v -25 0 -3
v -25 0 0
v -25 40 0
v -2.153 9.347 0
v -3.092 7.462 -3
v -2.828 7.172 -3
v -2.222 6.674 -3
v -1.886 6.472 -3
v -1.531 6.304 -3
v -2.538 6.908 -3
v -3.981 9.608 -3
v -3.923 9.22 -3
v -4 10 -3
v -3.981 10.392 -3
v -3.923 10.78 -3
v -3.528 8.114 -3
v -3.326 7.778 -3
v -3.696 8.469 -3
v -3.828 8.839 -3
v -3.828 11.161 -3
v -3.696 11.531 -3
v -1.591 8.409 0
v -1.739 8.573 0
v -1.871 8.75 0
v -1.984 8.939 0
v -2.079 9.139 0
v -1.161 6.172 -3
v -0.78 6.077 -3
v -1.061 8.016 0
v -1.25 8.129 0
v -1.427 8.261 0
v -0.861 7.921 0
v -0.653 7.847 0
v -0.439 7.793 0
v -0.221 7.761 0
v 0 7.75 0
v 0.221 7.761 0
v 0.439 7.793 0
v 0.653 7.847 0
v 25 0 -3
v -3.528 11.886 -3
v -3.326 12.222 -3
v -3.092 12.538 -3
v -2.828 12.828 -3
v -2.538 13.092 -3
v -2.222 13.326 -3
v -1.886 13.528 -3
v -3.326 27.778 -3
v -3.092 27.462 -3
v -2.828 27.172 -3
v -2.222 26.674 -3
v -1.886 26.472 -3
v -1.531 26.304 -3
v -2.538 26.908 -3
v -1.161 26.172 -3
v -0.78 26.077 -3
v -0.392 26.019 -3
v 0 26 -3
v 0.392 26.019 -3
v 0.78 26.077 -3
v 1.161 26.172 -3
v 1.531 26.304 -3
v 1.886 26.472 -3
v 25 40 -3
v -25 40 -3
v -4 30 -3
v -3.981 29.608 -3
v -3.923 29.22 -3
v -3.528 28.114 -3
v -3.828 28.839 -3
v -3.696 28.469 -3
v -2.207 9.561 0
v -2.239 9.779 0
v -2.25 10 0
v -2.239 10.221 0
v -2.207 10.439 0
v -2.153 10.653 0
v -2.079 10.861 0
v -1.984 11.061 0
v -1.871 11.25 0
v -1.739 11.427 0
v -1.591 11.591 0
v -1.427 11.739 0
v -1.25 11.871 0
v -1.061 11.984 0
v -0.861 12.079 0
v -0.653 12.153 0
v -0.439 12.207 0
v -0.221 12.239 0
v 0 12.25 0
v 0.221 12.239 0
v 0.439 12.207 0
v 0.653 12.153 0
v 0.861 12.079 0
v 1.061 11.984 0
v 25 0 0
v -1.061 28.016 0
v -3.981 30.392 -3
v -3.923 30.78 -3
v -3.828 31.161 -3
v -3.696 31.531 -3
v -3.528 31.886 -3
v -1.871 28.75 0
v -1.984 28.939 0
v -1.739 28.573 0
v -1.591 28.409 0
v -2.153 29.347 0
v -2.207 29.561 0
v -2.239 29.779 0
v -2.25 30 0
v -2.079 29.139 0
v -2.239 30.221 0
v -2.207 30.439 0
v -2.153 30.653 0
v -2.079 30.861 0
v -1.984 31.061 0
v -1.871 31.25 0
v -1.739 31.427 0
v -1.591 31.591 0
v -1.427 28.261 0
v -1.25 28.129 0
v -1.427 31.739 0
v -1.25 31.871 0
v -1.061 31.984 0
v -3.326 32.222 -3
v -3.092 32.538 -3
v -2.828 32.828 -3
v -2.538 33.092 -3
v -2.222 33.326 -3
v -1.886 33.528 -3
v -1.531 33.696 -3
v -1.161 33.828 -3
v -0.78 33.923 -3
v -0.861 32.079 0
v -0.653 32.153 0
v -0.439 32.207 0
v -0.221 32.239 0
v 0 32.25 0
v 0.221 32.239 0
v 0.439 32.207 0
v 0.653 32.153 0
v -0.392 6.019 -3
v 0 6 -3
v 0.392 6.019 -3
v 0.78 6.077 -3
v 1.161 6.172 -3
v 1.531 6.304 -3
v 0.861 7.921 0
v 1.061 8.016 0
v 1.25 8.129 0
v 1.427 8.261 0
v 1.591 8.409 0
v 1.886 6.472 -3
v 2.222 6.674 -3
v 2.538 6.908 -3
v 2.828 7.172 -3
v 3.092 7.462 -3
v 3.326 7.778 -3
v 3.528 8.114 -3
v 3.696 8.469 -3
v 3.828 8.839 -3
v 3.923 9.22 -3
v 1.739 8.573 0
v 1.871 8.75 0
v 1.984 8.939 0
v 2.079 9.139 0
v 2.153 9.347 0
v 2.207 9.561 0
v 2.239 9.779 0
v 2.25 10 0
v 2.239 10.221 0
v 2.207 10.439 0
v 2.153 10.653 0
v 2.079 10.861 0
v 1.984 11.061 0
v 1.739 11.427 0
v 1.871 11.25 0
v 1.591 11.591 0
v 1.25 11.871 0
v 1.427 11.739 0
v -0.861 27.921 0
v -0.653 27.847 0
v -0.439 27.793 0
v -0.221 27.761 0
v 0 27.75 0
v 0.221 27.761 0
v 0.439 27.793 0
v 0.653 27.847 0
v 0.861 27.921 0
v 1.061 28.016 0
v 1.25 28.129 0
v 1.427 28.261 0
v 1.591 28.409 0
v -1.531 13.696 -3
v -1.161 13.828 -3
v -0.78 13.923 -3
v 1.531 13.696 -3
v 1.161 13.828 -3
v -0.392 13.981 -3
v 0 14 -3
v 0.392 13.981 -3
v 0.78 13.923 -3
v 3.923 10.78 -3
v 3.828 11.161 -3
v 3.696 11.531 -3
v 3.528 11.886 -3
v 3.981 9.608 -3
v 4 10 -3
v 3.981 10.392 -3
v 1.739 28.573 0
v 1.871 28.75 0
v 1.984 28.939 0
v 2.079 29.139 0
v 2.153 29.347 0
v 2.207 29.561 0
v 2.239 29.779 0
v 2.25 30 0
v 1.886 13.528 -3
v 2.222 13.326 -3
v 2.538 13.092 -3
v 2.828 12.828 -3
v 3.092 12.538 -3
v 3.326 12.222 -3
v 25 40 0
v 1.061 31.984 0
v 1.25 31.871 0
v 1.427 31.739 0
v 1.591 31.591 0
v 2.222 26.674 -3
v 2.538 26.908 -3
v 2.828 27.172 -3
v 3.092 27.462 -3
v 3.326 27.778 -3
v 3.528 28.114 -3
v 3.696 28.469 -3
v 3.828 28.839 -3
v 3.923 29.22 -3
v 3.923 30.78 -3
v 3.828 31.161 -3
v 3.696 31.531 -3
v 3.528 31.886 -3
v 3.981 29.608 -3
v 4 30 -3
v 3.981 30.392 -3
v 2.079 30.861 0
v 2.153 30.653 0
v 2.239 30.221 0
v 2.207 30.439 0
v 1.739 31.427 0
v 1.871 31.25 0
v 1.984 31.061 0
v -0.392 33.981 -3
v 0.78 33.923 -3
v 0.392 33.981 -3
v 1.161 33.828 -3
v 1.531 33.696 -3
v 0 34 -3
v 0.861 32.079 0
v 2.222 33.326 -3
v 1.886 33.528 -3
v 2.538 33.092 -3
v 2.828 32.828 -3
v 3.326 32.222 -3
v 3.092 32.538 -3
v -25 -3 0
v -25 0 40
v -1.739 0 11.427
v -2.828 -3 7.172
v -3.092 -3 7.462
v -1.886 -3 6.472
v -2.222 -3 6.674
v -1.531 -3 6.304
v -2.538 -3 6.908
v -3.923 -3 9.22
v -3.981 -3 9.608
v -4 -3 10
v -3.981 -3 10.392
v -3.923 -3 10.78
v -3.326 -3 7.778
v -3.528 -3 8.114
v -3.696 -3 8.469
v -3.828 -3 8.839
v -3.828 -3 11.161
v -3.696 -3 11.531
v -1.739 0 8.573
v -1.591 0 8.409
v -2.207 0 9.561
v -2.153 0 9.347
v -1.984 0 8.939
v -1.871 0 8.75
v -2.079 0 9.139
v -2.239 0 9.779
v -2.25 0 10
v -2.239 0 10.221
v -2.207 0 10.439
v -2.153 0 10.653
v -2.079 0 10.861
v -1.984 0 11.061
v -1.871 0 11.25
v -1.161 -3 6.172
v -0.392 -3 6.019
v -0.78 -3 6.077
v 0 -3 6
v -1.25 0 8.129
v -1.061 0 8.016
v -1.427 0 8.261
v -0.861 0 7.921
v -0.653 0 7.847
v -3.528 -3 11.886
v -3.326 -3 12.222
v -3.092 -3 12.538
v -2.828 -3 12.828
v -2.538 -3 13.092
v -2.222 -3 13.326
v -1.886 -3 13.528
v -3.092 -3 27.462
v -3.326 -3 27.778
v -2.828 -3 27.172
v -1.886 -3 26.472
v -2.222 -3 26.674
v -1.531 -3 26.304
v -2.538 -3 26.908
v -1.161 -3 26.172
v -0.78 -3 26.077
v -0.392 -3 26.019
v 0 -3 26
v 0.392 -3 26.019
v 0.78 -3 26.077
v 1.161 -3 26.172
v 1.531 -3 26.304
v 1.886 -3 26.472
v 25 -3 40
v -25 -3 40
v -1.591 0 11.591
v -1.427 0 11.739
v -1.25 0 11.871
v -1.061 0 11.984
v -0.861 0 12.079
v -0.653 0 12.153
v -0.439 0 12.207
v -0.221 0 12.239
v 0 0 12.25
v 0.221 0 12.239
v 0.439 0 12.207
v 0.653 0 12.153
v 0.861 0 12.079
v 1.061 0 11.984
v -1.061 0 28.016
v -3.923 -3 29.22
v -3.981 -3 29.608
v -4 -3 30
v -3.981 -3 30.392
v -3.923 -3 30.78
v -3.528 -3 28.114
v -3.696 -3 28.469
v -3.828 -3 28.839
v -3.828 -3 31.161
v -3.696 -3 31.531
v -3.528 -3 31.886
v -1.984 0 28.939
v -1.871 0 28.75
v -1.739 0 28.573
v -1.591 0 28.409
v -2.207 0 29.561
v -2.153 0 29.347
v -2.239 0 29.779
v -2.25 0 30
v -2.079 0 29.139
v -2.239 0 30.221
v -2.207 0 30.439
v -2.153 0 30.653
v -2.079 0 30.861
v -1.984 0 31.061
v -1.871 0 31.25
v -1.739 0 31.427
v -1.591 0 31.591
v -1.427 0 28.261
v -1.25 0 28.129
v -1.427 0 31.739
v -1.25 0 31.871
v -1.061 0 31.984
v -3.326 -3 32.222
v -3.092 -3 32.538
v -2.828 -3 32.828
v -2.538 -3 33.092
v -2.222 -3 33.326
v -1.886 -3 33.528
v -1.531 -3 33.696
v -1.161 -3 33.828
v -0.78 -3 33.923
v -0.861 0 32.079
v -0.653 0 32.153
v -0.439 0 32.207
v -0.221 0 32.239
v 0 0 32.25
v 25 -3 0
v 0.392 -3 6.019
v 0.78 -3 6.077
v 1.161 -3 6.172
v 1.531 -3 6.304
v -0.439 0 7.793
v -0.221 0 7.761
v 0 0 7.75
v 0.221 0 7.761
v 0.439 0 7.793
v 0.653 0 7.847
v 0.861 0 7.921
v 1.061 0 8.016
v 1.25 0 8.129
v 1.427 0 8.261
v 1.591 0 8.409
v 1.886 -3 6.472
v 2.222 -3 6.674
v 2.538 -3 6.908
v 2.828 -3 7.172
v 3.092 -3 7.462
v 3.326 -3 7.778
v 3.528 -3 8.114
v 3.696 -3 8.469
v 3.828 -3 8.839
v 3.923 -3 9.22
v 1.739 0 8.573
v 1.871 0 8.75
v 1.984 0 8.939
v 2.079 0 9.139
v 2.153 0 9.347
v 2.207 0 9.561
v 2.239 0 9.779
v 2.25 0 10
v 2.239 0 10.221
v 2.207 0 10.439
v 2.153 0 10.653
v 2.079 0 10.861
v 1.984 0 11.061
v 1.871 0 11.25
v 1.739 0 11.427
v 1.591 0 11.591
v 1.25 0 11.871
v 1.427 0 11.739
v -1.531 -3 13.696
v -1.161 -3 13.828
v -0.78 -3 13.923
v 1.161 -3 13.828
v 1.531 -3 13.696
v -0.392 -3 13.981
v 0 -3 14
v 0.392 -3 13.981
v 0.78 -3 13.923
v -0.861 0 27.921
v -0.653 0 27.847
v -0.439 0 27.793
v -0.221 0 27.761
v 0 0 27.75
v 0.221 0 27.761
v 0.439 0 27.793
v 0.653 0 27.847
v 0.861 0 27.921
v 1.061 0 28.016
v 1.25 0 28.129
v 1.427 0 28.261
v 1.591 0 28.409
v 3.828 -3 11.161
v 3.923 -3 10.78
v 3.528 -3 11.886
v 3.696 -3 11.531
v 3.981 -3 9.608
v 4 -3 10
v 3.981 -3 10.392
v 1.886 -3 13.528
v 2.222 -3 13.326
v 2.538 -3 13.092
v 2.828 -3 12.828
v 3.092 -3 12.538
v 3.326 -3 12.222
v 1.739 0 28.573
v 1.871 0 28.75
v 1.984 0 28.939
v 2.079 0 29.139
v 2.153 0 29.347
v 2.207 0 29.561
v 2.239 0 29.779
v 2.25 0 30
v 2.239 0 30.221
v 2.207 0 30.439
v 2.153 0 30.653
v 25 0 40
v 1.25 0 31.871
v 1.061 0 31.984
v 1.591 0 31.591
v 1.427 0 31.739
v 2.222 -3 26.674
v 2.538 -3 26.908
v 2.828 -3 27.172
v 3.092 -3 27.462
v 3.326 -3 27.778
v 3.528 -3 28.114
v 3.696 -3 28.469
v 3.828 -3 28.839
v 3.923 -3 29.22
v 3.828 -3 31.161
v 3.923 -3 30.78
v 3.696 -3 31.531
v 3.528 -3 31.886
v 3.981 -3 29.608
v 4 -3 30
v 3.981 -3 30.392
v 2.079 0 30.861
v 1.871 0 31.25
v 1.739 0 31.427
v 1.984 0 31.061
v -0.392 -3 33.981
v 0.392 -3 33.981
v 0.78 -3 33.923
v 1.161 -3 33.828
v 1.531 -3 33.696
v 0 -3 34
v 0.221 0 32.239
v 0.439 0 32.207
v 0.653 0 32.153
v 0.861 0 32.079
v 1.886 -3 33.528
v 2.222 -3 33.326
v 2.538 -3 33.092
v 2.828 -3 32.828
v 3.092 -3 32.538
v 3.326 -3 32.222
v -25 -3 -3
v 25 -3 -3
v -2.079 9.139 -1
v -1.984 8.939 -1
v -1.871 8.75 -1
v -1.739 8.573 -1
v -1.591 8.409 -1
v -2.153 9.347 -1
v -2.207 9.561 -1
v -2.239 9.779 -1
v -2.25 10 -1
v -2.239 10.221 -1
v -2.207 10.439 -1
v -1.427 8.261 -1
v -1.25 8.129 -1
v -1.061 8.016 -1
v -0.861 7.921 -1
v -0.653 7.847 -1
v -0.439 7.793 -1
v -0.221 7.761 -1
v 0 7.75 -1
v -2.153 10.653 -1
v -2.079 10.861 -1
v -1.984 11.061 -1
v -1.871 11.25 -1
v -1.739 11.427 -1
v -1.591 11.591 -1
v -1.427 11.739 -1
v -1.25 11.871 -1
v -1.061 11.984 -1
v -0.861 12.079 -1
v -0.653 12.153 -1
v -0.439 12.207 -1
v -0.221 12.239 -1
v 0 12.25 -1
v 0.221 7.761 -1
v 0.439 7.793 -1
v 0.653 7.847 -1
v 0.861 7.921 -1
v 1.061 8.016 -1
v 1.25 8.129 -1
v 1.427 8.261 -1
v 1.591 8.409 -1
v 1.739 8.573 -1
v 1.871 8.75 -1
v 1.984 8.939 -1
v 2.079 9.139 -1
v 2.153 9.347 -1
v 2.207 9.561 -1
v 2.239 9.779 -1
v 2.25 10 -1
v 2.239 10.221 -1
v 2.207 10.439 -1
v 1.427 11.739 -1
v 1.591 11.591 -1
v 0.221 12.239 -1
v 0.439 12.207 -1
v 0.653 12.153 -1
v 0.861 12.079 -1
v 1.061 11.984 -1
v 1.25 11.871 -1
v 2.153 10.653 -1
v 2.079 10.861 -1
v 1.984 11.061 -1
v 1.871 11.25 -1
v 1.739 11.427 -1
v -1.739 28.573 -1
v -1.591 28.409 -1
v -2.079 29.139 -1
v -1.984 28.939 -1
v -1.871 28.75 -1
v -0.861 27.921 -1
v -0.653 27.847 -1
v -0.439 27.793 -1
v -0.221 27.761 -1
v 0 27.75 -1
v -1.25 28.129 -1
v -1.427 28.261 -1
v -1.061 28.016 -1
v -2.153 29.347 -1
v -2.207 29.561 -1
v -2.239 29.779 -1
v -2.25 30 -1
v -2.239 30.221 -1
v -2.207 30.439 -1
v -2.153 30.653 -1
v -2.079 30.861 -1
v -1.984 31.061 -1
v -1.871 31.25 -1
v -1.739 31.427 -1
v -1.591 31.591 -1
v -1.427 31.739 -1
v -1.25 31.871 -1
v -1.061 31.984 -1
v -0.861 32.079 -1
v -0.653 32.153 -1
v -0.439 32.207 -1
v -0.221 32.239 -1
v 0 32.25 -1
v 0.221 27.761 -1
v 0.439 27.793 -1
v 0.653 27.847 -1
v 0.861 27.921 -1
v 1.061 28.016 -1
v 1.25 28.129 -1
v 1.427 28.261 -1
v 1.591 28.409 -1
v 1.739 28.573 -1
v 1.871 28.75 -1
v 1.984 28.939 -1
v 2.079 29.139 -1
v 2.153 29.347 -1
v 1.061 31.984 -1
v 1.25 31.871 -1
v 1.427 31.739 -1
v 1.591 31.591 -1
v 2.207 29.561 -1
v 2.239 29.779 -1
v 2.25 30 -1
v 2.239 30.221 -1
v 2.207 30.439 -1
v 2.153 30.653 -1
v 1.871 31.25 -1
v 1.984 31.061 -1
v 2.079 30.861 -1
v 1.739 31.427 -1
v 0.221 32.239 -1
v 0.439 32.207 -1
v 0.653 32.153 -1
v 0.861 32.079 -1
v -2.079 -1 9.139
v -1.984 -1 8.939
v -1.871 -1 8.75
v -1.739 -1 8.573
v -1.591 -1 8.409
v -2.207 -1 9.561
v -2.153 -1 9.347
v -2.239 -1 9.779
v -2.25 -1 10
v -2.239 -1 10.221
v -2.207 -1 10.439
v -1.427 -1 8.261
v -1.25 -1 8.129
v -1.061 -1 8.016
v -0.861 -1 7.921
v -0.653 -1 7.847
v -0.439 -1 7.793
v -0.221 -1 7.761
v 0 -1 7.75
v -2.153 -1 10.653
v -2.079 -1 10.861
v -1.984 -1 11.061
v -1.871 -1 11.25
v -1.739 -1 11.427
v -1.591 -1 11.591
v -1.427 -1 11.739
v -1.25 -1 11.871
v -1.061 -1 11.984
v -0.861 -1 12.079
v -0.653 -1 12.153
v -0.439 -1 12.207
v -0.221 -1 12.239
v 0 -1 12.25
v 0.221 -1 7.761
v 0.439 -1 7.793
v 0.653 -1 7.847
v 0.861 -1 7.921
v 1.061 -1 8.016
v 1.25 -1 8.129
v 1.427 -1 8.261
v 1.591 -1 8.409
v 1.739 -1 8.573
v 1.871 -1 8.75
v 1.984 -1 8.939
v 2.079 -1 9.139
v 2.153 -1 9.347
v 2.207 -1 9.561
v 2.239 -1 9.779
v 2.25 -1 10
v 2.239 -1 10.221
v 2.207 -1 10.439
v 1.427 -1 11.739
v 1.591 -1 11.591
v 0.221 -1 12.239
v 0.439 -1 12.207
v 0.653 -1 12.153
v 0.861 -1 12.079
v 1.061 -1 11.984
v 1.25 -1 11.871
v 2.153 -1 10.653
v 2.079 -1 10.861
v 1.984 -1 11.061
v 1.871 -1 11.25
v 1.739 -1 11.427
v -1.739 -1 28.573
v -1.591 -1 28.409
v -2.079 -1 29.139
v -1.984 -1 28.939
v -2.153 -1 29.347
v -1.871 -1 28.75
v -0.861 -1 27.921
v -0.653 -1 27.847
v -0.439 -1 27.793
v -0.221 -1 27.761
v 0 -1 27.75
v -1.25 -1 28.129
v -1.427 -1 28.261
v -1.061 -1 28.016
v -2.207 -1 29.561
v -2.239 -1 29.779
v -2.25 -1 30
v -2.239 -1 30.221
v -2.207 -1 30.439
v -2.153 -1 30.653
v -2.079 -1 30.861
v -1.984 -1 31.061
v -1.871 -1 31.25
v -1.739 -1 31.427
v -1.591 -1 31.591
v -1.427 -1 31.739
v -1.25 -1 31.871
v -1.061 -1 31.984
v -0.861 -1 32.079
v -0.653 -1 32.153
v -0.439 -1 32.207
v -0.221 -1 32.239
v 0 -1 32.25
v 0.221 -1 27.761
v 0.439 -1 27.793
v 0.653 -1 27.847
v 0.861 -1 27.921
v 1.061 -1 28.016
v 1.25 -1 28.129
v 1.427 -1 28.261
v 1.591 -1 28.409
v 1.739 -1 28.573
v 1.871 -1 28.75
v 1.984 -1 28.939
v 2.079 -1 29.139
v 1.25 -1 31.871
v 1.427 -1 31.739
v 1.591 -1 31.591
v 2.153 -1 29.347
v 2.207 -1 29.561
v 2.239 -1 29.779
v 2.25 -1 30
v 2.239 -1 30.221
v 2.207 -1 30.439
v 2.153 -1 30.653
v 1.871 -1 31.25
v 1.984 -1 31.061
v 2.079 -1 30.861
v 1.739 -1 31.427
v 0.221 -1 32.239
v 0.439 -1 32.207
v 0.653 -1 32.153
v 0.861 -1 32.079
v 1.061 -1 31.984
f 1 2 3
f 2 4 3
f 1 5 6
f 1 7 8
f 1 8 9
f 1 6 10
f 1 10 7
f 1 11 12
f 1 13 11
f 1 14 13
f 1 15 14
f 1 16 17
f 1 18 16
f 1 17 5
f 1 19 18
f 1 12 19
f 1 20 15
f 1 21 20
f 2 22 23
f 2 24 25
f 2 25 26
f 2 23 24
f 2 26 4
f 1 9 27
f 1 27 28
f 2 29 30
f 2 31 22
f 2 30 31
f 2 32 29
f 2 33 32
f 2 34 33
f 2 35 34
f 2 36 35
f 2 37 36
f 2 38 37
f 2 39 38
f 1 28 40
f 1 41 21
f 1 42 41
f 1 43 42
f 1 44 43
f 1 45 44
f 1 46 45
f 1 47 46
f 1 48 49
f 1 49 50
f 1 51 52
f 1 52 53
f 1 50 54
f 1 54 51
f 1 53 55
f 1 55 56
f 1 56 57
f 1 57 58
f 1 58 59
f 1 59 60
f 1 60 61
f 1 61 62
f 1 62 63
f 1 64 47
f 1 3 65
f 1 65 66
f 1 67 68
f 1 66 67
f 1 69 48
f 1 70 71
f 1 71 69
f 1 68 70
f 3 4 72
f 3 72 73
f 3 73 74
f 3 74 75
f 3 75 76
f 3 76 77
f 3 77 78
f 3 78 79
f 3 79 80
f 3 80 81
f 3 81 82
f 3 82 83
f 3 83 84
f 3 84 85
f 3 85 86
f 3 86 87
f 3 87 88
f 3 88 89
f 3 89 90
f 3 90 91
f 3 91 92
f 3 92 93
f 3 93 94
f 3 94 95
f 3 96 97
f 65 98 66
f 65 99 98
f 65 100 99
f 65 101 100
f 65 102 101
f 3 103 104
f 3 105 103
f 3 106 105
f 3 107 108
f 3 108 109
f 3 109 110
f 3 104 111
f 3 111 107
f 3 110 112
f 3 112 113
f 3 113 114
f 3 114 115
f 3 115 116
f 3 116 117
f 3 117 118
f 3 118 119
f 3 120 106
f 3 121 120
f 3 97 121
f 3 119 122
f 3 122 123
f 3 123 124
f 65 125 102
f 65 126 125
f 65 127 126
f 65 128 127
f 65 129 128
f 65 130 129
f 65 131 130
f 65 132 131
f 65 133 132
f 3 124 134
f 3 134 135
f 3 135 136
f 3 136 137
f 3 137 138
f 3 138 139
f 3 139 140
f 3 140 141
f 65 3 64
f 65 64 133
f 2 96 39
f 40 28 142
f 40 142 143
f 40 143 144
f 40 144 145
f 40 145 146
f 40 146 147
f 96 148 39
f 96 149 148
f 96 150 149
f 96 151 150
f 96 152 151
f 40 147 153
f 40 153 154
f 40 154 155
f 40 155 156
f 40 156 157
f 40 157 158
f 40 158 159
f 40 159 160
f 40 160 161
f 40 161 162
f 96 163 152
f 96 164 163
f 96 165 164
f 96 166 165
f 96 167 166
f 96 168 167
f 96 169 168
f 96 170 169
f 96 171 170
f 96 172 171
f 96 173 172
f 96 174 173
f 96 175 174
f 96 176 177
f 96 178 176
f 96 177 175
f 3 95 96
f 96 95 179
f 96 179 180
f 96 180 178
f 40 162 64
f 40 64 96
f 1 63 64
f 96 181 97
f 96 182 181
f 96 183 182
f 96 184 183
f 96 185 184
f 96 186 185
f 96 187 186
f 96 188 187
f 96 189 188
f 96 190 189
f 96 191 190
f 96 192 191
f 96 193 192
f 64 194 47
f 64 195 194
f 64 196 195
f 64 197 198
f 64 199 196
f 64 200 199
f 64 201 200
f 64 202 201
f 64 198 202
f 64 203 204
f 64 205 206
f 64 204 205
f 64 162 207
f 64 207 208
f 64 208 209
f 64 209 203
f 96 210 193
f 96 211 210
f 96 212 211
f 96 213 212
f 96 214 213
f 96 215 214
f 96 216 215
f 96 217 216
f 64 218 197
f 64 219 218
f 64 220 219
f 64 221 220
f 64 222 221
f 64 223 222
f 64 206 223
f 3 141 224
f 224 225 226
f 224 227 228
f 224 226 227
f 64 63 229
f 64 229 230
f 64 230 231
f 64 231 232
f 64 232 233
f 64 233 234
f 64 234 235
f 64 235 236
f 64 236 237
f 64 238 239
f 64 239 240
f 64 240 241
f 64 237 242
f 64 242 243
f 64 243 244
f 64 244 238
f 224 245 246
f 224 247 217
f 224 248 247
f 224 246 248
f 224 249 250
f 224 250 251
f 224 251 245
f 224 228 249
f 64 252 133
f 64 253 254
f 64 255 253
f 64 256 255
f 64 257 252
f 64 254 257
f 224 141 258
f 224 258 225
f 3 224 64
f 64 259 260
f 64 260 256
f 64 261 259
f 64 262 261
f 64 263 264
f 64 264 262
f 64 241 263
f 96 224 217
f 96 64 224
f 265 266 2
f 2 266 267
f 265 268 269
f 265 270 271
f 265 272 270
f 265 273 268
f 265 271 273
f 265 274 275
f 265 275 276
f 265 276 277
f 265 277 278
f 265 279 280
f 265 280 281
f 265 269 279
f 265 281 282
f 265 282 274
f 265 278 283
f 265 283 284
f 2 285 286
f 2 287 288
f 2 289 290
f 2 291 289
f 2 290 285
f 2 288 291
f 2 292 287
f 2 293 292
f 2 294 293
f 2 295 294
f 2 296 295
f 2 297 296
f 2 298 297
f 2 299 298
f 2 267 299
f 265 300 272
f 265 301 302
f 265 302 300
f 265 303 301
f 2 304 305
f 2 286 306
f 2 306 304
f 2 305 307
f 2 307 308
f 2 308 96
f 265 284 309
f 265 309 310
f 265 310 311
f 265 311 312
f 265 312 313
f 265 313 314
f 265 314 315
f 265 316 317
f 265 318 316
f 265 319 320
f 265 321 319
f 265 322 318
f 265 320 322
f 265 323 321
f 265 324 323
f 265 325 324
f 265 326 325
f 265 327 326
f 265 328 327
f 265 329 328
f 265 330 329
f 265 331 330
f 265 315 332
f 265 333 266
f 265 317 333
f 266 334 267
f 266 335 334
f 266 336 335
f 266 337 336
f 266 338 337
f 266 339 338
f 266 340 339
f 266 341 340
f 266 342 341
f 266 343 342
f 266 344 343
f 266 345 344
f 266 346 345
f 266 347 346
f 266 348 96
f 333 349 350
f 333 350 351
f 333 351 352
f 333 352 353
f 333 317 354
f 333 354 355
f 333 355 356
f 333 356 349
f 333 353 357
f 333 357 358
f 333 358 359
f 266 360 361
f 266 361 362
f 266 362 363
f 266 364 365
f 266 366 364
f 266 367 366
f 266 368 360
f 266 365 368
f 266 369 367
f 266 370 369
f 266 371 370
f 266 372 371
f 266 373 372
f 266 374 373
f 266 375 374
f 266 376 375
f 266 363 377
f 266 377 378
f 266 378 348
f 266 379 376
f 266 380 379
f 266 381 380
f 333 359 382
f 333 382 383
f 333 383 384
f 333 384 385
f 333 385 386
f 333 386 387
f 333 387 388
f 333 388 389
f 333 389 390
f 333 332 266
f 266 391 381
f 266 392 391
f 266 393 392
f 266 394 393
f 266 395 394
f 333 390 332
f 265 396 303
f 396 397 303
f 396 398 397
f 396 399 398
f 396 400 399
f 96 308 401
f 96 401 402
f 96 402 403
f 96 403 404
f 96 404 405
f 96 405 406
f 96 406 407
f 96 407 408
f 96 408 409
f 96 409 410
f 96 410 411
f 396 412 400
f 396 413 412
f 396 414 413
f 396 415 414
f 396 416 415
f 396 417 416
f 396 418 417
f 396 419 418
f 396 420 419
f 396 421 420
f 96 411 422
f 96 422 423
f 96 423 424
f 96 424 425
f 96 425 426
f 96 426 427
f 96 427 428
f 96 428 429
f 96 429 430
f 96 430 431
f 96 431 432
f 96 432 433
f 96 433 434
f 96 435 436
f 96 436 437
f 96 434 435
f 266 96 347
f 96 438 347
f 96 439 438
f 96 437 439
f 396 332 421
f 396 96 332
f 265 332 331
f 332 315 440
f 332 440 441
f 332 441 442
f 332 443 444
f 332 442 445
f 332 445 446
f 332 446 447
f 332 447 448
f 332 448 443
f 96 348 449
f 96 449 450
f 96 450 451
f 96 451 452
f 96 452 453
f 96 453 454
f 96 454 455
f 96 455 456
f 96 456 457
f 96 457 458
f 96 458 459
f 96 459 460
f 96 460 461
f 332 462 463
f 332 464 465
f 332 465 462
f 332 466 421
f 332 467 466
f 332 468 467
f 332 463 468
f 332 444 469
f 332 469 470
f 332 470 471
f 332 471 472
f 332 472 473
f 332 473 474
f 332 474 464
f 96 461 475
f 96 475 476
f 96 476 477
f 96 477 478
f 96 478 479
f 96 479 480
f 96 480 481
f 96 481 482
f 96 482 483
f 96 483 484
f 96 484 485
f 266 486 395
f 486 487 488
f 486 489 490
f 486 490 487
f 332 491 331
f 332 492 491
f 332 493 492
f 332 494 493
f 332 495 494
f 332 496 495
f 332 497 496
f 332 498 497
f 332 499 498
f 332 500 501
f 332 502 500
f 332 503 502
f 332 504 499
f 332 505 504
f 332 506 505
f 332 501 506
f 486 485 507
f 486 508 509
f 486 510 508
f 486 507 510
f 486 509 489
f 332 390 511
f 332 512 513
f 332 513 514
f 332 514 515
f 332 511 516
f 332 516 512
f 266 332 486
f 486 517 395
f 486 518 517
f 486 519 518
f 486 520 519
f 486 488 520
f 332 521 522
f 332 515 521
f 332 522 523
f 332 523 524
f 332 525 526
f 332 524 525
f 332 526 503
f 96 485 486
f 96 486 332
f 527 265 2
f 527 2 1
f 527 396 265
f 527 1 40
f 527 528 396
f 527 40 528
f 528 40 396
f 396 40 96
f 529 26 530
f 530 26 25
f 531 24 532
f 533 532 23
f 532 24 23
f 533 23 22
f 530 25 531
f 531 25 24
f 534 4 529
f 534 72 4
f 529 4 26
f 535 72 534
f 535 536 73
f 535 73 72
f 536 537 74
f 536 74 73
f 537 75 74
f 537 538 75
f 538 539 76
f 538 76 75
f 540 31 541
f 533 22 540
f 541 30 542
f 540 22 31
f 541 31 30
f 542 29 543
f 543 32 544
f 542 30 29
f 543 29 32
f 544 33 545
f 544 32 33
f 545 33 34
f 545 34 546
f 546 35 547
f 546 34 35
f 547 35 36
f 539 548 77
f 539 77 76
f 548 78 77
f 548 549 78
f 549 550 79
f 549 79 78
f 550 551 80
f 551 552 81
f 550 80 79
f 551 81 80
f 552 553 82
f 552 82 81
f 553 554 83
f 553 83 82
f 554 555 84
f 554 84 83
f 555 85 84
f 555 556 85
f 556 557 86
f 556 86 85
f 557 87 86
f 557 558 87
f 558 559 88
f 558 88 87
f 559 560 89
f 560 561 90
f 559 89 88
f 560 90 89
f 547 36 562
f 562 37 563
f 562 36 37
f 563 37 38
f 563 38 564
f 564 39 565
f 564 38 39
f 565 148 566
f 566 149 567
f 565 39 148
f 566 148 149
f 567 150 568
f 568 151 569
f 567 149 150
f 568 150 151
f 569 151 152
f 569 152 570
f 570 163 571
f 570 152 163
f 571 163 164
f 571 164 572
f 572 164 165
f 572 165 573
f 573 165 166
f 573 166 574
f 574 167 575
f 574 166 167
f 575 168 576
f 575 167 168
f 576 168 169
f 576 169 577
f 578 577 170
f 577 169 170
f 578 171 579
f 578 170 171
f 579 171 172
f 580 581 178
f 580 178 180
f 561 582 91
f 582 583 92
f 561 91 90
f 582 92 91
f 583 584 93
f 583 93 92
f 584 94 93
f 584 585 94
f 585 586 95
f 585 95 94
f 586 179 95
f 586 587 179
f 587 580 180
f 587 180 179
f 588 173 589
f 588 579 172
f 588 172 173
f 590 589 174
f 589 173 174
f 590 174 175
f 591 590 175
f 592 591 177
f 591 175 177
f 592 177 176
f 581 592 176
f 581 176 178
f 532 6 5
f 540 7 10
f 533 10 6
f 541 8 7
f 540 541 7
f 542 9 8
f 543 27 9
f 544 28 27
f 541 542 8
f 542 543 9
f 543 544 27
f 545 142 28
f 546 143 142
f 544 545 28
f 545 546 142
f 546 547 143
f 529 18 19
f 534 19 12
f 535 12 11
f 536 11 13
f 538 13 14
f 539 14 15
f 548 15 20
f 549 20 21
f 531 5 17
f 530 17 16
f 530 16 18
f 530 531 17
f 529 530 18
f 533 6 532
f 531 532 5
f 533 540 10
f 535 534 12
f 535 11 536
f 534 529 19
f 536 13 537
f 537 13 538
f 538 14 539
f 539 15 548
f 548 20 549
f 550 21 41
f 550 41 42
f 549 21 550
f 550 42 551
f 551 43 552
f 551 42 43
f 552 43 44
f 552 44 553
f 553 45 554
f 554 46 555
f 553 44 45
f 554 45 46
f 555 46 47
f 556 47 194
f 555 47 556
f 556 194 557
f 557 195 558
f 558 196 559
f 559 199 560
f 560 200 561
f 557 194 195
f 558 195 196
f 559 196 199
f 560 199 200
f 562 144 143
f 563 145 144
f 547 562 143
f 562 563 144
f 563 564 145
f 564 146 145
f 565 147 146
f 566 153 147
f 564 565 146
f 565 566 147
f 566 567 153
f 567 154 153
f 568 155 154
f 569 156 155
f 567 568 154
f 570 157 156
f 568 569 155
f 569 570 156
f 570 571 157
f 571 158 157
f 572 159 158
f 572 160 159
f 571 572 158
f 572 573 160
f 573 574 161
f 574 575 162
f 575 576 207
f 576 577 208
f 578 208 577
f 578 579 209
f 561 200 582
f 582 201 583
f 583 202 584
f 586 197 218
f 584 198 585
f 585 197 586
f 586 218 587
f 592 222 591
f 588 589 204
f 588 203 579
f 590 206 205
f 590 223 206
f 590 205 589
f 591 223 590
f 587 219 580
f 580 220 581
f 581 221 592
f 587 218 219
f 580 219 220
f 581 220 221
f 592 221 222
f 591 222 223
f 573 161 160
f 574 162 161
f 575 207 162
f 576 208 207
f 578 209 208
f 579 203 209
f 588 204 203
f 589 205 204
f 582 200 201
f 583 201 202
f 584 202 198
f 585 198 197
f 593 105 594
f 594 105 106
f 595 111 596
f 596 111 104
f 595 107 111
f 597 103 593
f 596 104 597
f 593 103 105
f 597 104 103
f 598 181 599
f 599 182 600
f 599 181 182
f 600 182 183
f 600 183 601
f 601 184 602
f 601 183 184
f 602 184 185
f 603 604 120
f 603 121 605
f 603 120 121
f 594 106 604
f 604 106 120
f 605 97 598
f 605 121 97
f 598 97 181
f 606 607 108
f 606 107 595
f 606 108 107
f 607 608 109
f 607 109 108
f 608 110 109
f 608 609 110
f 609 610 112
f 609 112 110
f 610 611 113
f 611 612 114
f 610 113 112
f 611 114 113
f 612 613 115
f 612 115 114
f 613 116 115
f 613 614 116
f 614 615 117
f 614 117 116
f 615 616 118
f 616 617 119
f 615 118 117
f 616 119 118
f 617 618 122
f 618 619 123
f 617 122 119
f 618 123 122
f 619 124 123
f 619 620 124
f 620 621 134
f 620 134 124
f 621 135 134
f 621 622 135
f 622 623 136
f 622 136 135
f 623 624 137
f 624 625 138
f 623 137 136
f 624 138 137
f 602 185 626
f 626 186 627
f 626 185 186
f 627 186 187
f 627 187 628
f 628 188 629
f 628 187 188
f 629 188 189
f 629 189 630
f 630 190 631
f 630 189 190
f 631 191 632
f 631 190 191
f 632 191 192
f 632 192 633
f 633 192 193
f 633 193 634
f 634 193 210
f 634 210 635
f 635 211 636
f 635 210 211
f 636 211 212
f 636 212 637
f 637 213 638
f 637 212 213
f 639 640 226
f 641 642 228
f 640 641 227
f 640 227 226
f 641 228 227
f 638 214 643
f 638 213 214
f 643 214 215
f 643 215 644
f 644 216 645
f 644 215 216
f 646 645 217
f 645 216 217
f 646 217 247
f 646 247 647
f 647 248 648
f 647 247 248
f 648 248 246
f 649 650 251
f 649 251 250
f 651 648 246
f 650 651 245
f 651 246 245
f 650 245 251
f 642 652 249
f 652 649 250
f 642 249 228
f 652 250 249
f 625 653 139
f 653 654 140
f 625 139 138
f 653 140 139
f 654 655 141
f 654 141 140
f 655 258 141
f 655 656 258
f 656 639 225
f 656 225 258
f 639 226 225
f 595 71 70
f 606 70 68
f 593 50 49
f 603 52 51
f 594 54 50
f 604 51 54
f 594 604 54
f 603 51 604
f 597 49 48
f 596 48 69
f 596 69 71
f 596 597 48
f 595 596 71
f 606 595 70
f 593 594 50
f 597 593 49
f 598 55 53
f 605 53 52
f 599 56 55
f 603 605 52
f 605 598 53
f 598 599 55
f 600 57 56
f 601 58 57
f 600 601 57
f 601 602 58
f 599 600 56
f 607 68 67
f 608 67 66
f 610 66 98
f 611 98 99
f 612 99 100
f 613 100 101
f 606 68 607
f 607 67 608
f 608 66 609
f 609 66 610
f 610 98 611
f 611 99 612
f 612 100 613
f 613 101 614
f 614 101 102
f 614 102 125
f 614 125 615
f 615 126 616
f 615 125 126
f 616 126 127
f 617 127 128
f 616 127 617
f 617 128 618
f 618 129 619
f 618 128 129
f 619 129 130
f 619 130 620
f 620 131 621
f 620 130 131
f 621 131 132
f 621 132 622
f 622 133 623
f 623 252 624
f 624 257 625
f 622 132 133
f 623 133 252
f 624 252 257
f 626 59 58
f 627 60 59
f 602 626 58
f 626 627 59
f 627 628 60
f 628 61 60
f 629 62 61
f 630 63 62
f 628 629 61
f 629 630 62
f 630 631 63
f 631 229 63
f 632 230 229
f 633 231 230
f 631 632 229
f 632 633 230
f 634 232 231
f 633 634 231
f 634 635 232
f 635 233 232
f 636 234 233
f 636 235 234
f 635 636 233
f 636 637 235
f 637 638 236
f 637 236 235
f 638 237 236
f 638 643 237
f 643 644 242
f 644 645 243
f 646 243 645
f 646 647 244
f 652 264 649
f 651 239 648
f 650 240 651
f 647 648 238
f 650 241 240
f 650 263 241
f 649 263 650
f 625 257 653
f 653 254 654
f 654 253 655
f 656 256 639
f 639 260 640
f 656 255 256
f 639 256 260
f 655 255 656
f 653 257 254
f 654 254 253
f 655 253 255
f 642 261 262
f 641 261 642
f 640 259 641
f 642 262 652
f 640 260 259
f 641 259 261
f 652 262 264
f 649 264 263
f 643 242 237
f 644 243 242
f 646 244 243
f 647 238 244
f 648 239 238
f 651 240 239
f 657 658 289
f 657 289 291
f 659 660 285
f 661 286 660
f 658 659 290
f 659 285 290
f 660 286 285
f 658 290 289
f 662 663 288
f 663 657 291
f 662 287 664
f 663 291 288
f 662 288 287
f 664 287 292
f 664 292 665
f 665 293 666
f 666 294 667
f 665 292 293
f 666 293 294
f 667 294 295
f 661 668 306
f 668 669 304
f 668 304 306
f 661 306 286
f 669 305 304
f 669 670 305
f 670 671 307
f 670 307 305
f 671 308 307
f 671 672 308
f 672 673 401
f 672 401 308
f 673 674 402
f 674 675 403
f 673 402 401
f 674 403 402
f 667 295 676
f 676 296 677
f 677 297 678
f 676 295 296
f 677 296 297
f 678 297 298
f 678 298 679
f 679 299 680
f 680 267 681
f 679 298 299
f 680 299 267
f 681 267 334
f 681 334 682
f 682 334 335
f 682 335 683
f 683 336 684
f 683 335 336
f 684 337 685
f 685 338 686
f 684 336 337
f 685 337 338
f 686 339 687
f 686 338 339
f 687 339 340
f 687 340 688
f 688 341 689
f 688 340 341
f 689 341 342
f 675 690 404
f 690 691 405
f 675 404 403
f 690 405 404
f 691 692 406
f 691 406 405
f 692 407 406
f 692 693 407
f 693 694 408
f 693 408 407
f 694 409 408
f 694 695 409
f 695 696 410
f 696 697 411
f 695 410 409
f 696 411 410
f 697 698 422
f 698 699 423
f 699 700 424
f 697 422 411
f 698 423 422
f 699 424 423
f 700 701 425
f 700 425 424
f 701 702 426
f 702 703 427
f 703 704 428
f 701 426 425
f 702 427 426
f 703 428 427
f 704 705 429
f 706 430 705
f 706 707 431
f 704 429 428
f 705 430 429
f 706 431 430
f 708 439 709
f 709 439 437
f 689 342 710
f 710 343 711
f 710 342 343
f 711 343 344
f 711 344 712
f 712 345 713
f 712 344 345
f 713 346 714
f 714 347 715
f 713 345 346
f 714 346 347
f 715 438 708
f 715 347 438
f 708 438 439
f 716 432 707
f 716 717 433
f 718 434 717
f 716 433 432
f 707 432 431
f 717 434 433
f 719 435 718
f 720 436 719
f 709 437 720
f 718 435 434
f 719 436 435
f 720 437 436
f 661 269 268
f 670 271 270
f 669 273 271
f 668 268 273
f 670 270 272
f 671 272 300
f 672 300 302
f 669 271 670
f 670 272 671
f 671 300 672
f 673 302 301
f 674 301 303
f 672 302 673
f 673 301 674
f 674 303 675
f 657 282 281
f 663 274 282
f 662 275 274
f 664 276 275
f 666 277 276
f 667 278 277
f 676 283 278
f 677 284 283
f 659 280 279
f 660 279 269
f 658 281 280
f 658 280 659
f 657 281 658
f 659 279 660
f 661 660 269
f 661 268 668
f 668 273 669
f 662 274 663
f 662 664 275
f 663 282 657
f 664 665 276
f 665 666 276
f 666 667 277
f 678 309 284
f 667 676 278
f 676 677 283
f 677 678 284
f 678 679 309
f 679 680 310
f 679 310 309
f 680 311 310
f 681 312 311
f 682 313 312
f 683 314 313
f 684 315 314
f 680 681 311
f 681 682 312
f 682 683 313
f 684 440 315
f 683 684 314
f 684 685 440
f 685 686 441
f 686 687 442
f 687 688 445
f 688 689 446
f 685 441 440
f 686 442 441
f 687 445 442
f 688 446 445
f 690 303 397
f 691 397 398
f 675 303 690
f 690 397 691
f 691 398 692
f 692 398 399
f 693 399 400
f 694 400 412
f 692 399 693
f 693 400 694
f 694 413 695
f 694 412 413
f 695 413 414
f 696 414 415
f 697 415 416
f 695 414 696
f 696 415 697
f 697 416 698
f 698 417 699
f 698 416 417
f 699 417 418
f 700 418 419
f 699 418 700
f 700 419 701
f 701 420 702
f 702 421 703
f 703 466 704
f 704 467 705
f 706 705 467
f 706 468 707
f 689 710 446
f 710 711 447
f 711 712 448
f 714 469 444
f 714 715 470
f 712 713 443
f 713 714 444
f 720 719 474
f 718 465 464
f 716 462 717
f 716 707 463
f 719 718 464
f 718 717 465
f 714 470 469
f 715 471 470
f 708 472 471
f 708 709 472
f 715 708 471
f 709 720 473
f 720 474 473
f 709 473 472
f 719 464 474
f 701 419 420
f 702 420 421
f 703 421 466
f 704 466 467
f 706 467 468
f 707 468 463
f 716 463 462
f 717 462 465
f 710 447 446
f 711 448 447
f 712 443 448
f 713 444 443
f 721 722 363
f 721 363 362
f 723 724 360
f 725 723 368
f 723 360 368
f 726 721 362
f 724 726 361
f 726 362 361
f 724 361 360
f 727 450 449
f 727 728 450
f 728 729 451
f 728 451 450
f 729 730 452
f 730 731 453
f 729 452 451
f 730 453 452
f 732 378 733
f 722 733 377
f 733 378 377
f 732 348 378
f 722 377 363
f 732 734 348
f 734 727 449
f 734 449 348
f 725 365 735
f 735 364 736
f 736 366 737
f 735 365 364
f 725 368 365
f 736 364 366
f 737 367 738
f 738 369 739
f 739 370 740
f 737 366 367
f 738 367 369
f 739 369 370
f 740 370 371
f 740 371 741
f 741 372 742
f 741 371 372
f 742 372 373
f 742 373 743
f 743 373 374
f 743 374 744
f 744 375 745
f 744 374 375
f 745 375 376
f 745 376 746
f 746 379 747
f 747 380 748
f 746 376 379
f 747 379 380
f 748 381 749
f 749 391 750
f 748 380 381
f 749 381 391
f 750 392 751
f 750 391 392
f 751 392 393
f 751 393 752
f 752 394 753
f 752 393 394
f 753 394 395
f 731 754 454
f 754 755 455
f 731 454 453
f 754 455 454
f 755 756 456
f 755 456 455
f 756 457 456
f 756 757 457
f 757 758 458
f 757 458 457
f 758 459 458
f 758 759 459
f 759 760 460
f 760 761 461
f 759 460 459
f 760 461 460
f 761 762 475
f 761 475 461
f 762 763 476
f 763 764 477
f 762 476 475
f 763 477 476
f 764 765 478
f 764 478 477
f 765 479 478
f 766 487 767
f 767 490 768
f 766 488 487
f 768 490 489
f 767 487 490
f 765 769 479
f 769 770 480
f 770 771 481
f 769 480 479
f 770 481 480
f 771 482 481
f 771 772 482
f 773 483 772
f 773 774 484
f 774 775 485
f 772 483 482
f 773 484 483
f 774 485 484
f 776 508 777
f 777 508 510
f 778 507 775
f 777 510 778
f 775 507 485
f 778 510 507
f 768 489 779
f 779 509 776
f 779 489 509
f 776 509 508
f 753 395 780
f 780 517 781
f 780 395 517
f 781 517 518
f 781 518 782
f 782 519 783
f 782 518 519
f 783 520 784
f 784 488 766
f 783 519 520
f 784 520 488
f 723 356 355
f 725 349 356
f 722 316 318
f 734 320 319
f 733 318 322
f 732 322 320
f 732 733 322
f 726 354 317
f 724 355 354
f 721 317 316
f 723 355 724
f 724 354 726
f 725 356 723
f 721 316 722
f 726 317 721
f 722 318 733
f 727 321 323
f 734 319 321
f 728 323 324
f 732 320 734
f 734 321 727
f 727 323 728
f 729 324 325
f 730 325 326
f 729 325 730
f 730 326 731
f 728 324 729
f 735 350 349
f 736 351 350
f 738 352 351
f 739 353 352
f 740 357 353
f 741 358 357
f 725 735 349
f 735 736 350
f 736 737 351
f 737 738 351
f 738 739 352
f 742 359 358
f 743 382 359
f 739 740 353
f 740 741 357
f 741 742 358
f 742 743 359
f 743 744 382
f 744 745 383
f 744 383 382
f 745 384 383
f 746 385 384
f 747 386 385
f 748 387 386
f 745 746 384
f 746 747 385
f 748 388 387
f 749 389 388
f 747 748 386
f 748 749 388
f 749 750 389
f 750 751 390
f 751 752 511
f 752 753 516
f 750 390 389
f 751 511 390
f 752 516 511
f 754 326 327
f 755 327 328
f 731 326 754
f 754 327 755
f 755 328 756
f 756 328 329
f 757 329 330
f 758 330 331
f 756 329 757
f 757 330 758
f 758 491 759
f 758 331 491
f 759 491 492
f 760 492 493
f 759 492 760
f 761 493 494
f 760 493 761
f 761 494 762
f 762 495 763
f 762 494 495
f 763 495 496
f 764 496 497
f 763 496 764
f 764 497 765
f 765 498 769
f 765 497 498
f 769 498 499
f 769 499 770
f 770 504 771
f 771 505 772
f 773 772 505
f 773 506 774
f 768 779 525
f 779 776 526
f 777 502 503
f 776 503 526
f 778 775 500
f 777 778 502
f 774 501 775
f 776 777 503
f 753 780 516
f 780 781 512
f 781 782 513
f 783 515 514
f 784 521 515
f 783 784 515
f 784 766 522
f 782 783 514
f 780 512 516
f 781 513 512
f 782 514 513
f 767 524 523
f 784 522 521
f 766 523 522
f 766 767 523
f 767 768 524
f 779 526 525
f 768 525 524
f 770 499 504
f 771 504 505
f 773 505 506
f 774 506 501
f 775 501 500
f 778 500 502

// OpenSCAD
$fn = 64;

width = 50;
depth = 40;
height = 40;
thickness = 3;

hole_diameter = 4.5;
countersink_diameter = 8;
countersink_depth = 2;

module bracket() {
    union() {
        // Horizontal flange: extends in +Y; inside face is at Z=0.
        translate([-width/2, 0, -thickness])
            cube([width, depth, thickness]);

        // Vertical flange: extends in +Z; inside face is at Y=0.
        translate([-width/2, -thickness, 0])
            cube([width, thickness, height]);

        // Material at the outside corner joins the two flanges.
        translate([-width/2, -thickness, -thickness])
            cube([width, thickness, thickness]);
    }
}

difference() {
    bracket();

    // Horizontal flange holes, countersinks facing outward (-Z).
    for (y = [10, depth - 10]) {
        translate([0, y, -thickness - 0.1])
            cylinder(h = thickness + 0.2, d = hole_diameter);

        translate([0, y, -thickness])
            cylinder(
                h = countersink_depth,
                d1 = countersink_diameter,
                d2 = hole_diameter
            );
    }

    // Vertical flange holes, countersinks facing outward (-Y).
    for (z = [10, height - 10]) {
        translate([0, -thickness - 0.1, z])
            rotate([-90, 0, 0])
                cylinder(h = thickness + 0.2, d = hole_diameter);

        translate([0, -thickness, z])
            rotate([-90, 0, 0])
                cylinder(
                    h = countersink_depth,
                    d1 = countersink_diameter,
                    d2 = hole_diameter
                );
    }
}
